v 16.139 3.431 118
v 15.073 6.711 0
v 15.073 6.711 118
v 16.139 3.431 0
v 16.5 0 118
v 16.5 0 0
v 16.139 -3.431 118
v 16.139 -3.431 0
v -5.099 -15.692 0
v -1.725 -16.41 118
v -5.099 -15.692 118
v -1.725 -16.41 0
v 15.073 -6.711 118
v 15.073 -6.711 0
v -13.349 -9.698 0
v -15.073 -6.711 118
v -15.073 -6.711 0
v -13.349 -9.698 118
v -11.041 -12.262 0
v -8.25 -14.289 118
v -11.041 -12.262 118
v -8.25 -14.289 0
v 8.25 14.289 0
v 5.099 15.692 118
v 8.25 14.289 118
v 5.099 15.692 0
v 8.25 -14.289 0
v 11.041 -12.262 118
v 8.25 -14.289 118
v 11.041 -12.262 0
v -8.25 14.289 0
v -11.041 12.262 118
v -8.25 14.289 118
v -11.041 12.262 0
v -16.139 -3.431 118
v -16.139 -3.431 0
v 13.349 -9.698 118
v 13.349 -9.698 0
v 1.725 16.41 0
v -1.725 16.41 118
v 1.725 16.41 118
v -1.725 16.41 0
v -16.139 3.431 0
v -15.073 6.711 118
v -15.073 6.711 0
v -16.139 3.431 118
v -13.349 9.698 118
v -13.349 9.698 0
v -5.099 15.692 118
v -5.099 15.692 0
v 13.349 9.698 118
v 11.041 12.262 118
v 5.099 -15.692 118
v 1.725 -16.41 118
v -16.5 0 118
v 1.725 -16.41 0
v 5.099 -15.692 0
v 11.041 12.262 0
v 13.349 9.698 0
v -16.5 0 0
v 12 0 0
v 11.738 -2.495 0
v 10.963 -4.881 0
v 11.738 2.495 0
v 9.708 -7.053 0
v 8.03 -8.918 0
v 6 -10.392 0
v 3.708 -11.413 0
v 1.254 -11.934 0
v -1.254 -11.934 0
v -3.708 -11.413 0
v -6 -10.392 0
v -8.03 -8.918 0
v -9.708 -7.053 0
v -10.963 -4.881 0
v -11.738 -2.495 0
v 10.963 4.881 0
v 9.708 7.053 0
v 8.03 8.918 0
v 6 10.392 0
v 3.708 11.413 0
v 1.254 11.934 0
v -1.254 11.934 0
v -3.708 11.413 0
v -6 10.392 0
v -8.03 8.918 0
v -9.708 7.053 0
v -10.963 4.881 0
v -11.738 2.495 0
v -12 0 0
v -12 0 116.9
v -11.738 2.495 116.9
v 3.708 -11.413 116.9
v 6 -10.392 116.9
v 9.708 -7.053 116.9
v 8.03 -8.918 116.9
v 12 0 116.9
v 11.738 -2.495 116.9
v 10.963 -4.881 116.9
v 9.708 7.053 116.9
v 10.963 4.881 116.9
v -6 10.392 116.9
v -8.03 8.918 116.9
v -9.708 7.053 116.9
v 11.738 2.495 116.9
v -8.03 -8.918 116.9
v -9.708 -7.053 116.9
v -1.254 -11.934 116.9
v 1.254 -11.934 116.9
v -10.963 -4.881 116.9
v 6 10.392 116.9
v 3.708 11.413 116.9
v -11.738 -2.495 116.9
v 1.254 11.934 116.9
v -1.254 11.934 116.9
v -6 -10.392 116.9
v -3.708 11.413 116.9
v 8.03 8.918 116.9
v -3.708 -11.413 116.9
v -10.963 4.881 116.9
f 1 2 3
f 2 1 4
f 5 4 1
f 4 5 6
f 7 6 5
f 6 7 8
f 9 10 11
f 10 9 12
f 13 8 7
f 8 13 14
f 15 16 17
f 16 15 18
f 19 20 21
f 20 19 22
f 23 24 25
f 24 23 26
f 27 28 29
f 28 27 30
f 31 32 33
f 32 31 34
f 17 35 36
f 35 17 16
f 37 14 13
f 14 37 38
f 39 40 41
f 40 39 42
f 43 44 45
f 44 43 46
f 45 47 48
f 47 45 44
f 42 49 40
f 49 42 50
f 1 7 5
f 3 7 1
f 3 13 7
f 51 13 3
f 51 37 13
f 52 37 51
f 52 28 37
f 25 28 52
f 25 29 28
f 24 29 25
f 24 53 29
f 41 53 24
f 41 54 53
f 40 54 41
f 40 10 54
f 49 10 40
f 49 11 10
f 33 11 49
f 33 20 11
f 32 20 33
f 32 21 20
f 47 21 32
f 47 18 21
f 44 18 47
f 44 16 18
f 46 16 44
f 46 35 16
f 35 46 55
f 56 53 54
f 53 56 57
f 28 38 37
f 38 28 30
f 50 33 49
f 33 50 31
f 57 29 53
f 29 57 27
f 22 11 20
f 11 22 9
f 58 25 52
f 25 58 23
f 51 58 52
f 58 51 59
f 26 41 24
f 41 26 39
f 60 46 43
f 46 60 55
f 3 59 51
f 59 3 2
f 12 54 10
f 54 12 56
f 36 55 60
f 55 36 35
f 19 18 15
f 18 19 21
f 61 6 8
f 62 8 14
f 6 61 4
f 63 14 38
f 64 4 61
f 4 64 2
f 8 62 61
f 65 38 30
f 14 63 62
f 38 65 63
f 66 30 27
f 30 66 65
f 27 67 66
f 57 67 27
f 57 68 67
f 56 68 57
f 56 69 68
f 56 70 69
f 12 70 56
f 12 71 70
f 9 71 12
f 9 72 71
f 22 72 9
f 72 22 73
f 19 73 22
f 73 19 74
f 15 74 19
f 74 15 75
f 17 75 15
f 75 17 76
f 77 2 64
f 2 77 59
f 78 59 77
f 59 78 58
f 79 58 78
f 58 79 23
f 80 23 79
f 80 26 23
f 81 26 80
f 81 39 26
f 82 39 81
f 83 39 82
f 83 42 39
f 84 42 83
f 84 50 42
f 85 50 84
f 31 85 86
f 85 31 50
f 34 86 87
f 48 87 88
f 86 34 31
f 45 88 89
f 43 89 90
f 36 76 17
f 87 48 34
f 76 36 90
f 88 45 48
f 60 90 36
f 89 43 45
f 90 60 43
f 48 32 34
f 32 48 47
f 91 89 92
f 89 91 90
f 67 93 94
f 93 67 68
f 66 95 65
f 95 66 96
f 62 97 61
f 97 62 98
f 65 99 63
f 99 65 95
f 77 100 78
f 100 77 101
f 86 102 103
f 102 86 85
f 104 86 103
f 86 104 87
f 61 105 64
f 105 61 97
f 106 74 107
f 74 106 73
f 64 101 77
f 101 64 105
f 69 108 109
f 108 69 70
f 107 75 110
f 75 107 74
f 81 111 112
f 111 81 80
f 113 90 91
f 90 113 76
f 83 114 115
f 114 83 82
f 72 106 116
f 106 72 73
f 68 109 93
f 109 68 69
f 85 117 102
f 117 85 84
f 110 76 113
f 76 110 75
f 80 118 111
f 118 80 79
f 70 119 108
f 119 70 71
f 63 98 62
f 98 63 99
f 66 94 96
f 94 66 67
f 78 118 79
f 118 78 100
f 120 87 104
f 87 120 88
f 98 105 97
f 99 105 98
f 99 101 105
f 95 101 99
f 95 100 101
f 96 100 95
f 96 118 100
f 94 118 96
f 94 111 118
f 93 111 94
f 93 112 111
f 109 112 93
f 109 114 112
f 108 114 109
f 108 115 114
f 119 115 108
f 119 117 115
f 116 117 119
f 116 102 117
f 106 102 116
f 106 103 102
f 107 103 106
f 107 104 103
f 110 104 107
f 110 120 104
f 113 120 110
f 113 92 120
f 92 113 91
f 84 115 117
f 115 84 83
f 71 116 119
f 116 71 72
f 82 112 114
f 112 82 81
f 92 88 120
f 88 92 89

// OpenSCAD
difference() {
    cylinder(h=118, d=33);
    translate([0,0,-0.1])
    cylinder(h=117, d=24);
}
